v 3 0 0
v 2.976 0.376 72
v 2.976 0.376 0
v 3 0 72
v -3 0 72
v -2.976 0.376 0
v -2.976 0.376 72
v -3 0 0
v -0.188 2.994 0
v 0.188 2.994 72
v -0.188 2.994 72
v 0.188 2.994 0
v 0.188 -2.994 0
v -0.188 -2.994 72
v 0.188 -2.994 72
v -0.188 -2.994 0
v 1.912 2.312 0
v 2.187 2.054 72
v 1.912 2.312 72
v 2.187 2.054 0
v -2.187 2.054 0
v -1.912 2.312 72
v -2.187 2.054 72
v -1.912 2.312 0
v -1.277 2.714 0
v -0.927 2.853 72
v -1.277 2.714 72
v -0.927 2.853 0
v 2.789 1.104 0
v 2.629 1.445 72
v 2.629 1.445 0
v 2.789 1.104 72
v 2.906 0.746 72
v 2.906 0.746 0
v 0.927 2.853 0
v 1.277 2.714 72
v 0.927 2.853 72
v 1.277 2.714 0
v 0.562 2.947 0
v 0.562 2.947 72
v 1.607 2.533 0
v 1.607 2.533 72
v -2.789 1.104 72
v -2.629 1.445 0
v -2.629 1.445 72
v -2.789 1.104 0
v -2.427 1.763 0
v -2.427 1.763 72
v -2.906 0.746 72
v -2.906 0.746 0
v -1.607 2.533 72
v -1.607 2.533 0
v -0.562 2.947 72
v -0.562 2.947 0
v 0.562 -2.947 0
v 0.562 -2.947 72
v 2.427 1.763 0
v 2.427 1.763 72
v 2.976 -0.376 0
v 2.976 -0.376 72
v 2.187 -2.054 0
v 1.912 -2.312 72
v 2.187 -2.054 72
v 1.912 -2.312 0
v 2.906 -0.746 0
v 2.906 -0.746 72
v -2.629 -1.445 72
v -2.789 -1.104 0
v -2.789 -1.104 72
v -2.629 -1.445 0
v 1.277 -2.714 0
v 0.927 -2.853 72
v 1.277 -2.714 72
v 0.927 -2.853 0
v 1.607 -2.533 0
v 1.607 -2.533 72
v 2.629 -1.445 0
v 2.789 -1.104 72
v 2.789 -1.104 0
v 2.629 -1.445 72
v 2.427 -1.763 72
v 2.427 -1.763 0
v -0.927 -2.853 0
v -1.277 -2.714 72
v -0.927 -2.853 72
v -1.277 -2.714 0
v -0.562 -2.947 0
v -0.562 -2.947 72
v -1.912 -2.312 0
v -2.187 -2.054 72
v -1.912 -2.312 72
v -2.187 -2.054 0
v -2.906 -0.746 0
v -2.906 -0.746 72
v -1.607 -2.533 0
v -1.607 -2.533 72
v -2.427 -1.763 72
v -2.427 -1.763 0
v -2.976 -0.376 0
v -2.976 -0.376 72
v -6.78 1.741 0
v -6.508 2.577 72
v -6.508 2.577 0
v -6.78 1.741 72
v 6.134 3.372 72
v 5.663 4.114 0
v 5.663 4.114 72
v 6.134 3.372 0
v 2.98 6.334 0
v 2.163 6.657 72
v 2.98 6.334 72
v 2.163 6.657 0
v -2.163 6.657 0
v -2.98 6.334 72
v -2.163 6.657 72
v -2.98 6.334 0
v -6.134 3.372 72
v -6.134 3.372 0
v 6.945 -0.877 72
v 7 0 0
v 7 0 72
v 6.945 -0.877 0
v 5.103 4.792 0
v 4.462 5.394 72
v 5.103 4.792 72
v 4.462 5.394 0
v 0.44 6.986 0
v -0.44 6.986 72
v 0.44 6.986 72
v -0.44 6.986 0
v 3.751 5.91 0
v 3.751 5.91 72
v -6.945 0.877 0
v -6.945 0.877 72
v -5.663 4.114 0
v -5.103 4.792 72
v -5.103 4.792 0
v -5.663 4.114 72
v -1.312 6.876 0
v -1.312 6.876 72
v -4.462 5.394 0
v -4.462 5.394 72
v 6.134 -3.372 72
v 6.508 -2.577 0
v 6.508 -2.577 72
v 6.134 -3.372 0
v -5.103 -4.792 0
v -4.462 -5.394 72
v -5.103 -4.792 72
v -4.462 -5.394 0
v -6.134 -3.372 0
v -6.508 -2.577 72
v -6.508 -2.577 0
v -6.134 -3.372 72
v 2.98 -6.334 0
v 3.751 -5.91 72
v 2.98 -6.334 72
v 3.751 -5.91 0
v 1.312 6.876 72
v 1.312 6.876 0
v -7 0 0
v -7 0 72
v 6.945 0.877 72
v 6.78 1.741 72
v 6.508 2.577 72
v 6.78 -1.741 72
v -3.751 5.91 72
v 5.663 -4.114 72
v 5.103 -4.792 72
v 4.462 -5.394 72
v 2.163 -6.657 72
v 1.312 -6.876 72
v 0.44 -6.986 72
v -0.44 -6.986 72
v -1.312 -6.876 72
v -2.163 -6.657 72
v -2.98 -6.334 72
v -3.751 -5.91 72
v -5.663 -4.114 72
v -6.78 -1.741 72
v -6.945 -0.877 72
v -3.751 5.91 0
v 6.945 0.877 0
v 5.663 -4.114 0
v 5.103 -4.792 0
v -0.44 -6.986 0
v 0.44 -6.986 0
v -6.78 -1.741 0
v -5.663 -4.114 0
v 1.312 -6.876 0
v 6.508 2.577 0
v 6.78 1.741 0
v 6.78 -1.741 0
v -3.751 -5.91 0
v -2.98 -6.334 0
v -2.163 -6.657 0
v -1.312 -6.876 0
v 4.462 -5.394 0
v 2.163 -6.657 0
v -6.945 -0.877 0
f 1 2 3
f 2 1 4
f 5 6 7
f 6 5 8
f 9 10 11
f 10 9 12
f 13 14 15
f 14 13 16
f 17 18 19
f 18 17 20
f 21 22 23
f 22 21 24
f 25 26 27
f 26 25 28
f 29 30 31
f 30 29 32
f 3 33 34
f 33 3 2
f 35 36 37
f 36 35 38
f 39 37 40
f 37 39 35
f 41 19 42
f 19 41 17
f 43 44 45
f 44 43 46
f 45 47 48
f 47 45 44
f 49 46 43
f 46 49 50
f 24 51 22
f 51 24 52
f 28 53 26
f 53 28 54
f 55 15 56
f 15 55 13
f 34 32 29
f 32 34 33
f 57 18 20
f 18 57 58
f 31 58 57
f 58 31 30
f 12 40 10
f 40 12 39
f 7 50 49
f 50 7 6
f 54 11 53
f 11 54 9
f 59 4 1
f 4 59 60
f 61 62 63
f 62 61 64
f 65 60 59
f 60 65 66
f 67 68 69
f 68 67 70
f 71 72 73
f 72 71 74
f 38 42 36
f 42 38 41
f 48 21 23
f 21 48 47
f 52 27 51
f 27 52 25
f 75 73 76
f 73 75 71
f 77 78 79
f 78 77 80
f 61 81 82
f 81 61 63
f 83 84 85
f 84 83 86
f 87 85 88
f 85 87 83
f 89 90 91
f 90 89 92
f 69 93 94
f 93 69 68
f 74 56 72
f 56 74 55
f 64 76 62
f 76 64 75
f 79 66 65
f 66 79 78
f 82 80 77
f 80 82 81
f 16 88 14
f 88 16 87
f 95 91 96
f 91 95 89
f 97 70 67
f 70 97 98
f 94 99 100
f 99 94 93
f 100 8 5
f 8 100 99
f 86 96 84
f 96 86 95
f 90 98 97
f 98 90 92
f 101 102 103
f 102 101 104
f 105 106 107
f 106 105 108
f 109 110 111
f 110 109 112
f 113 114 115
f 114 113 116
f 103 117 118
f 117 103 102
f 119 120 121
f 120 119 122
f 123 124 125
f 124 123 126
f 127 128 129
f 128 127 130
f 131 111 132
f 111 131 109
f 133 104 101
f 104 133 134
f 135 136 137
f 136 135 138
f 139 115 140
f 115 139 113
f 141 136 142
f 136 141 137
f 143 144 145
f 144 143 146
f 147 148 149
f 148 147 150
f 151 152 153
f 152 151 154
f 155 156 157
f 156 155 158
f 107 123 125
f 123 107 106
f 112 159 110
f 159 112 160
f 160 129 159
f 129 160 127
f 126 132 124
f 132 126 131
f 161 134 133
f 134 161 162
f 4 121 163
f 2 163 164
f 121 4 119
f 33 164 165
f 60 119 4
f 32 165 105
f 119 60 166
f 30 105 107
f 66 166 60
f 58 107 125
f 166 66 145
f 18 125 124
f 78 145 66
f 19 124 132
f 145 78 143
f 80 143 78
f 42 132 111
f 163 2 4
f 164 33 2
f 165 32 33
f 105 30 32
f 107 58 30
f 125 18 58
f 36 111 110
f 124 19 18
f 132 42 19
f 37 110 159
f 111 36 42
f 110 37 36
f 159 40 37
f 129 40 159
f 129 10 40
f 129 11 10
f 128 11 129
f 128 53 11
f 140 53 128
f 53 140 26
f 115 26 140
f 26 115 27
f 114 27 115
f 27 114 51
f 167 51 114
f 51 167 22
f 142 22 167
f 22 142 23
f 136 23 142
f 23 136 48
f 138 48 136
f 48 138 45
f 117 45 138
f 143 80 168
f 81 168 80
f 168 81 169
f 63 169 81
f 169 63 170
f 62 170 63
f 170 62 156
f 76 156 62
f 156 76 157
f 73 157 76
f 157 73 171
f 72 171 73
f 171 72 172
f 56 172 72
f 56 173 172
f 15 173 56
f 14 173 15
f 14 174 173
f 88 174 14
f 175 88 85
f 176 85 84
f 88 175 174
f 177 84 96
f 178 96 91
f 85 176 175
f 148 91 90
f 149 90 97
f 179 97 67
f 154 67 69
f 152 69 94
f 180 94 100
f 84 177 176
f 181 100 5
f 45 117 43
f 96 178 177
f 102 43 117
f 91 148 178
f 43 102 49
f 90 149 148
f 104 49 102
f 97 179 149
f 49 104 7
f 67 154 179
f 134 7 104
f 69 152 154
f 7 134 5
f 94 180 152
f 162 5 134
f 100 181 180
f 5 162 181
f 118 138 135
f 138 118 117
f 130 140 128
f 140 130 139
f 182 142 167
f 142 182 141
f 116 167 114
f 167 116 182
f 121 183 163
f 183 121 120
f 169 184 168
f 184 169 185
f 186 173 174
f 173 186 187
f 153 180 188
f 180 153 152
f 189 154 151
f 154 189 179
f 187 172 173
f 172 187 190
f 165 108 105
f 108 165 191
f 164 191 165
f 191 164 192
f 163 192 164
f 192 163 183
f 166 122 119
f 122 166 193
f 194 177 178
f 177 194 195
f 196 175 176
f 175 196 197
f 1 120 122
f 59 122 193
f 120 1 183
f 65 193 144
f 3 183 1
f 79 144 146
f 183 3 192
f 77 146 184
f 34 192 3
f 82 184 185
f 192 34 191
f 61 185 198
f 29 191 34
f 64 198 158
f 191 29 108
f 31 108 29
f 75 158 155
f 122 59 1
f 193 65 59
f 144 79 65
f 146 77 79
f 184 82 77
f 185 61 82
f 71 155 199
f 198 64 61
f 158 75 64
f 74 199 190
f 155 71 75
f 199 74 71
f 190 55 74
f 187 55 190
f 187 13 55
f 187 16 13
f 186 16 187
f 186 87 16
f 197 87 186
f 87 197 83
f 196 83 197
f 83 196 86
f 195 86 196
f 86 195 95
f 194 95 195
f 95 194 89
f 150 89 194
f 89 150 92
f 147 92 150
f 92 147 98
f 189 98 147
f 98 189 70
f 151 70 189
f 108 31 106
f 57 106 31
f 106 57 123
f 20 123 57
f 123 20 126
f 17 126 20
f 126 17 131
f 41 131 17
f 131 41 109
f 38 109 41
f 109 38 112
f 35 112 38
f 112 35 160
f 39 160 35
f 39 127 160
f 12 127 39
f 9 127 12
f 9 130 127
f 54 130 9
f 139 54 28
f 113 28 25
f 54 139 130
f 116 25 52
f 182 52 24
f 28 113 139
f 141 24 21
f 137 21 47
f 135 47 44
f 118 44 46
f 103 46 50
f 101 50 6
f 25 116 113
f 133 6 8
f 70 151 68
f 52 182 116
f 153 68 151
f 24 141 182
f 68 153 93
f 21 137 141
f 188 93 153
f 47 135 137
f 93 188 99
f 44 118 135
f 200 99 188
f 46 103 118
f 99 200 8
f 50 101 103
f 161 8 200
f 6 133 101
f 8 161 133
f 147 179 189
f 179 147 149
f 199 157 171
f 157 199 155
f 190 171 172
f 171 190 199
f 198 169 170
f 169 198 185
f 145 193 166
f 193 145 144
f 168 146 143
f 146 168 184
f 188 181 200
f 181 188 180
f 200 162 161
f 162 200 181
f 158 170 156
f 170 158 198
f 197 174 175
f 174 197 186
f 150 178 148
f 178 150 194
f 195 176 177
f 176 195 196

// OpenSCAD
$fn = 50;


difference() {
	union() {
		*color(alpha = 1.0000000000, c = "gray") {
			translate(v = [0, 7, 0]) {
				linear_extrude(height = 1) {
					text(font = "Arial:style=Bold", halign = "center", size = 4.5000000000, text = "COMMENT plate main", valign = "center");
				}
			}
		}
		cylinder(h = 72, r = 7.0000000000);
	}
	union() {
		*color(alpha = 1.0000000000, c = "gray") {
			translate(v = [0, 7, 0]) {
				linear_extrude(height = 1) {
					text(font = "Arial:style=Bold", halign = "center", size = 4.5000000000, text = "COMMENT holes main", valign = "center");
				}
			}
		}
		translate(v = [0, 0, -100]) {
			cylinder(h = 200, r = 3.0000000000);
		}
		translate(v = [0, 0, -100]) {
			cylinder(h = 200, r = 1.5000000000);
		}
	}
}
